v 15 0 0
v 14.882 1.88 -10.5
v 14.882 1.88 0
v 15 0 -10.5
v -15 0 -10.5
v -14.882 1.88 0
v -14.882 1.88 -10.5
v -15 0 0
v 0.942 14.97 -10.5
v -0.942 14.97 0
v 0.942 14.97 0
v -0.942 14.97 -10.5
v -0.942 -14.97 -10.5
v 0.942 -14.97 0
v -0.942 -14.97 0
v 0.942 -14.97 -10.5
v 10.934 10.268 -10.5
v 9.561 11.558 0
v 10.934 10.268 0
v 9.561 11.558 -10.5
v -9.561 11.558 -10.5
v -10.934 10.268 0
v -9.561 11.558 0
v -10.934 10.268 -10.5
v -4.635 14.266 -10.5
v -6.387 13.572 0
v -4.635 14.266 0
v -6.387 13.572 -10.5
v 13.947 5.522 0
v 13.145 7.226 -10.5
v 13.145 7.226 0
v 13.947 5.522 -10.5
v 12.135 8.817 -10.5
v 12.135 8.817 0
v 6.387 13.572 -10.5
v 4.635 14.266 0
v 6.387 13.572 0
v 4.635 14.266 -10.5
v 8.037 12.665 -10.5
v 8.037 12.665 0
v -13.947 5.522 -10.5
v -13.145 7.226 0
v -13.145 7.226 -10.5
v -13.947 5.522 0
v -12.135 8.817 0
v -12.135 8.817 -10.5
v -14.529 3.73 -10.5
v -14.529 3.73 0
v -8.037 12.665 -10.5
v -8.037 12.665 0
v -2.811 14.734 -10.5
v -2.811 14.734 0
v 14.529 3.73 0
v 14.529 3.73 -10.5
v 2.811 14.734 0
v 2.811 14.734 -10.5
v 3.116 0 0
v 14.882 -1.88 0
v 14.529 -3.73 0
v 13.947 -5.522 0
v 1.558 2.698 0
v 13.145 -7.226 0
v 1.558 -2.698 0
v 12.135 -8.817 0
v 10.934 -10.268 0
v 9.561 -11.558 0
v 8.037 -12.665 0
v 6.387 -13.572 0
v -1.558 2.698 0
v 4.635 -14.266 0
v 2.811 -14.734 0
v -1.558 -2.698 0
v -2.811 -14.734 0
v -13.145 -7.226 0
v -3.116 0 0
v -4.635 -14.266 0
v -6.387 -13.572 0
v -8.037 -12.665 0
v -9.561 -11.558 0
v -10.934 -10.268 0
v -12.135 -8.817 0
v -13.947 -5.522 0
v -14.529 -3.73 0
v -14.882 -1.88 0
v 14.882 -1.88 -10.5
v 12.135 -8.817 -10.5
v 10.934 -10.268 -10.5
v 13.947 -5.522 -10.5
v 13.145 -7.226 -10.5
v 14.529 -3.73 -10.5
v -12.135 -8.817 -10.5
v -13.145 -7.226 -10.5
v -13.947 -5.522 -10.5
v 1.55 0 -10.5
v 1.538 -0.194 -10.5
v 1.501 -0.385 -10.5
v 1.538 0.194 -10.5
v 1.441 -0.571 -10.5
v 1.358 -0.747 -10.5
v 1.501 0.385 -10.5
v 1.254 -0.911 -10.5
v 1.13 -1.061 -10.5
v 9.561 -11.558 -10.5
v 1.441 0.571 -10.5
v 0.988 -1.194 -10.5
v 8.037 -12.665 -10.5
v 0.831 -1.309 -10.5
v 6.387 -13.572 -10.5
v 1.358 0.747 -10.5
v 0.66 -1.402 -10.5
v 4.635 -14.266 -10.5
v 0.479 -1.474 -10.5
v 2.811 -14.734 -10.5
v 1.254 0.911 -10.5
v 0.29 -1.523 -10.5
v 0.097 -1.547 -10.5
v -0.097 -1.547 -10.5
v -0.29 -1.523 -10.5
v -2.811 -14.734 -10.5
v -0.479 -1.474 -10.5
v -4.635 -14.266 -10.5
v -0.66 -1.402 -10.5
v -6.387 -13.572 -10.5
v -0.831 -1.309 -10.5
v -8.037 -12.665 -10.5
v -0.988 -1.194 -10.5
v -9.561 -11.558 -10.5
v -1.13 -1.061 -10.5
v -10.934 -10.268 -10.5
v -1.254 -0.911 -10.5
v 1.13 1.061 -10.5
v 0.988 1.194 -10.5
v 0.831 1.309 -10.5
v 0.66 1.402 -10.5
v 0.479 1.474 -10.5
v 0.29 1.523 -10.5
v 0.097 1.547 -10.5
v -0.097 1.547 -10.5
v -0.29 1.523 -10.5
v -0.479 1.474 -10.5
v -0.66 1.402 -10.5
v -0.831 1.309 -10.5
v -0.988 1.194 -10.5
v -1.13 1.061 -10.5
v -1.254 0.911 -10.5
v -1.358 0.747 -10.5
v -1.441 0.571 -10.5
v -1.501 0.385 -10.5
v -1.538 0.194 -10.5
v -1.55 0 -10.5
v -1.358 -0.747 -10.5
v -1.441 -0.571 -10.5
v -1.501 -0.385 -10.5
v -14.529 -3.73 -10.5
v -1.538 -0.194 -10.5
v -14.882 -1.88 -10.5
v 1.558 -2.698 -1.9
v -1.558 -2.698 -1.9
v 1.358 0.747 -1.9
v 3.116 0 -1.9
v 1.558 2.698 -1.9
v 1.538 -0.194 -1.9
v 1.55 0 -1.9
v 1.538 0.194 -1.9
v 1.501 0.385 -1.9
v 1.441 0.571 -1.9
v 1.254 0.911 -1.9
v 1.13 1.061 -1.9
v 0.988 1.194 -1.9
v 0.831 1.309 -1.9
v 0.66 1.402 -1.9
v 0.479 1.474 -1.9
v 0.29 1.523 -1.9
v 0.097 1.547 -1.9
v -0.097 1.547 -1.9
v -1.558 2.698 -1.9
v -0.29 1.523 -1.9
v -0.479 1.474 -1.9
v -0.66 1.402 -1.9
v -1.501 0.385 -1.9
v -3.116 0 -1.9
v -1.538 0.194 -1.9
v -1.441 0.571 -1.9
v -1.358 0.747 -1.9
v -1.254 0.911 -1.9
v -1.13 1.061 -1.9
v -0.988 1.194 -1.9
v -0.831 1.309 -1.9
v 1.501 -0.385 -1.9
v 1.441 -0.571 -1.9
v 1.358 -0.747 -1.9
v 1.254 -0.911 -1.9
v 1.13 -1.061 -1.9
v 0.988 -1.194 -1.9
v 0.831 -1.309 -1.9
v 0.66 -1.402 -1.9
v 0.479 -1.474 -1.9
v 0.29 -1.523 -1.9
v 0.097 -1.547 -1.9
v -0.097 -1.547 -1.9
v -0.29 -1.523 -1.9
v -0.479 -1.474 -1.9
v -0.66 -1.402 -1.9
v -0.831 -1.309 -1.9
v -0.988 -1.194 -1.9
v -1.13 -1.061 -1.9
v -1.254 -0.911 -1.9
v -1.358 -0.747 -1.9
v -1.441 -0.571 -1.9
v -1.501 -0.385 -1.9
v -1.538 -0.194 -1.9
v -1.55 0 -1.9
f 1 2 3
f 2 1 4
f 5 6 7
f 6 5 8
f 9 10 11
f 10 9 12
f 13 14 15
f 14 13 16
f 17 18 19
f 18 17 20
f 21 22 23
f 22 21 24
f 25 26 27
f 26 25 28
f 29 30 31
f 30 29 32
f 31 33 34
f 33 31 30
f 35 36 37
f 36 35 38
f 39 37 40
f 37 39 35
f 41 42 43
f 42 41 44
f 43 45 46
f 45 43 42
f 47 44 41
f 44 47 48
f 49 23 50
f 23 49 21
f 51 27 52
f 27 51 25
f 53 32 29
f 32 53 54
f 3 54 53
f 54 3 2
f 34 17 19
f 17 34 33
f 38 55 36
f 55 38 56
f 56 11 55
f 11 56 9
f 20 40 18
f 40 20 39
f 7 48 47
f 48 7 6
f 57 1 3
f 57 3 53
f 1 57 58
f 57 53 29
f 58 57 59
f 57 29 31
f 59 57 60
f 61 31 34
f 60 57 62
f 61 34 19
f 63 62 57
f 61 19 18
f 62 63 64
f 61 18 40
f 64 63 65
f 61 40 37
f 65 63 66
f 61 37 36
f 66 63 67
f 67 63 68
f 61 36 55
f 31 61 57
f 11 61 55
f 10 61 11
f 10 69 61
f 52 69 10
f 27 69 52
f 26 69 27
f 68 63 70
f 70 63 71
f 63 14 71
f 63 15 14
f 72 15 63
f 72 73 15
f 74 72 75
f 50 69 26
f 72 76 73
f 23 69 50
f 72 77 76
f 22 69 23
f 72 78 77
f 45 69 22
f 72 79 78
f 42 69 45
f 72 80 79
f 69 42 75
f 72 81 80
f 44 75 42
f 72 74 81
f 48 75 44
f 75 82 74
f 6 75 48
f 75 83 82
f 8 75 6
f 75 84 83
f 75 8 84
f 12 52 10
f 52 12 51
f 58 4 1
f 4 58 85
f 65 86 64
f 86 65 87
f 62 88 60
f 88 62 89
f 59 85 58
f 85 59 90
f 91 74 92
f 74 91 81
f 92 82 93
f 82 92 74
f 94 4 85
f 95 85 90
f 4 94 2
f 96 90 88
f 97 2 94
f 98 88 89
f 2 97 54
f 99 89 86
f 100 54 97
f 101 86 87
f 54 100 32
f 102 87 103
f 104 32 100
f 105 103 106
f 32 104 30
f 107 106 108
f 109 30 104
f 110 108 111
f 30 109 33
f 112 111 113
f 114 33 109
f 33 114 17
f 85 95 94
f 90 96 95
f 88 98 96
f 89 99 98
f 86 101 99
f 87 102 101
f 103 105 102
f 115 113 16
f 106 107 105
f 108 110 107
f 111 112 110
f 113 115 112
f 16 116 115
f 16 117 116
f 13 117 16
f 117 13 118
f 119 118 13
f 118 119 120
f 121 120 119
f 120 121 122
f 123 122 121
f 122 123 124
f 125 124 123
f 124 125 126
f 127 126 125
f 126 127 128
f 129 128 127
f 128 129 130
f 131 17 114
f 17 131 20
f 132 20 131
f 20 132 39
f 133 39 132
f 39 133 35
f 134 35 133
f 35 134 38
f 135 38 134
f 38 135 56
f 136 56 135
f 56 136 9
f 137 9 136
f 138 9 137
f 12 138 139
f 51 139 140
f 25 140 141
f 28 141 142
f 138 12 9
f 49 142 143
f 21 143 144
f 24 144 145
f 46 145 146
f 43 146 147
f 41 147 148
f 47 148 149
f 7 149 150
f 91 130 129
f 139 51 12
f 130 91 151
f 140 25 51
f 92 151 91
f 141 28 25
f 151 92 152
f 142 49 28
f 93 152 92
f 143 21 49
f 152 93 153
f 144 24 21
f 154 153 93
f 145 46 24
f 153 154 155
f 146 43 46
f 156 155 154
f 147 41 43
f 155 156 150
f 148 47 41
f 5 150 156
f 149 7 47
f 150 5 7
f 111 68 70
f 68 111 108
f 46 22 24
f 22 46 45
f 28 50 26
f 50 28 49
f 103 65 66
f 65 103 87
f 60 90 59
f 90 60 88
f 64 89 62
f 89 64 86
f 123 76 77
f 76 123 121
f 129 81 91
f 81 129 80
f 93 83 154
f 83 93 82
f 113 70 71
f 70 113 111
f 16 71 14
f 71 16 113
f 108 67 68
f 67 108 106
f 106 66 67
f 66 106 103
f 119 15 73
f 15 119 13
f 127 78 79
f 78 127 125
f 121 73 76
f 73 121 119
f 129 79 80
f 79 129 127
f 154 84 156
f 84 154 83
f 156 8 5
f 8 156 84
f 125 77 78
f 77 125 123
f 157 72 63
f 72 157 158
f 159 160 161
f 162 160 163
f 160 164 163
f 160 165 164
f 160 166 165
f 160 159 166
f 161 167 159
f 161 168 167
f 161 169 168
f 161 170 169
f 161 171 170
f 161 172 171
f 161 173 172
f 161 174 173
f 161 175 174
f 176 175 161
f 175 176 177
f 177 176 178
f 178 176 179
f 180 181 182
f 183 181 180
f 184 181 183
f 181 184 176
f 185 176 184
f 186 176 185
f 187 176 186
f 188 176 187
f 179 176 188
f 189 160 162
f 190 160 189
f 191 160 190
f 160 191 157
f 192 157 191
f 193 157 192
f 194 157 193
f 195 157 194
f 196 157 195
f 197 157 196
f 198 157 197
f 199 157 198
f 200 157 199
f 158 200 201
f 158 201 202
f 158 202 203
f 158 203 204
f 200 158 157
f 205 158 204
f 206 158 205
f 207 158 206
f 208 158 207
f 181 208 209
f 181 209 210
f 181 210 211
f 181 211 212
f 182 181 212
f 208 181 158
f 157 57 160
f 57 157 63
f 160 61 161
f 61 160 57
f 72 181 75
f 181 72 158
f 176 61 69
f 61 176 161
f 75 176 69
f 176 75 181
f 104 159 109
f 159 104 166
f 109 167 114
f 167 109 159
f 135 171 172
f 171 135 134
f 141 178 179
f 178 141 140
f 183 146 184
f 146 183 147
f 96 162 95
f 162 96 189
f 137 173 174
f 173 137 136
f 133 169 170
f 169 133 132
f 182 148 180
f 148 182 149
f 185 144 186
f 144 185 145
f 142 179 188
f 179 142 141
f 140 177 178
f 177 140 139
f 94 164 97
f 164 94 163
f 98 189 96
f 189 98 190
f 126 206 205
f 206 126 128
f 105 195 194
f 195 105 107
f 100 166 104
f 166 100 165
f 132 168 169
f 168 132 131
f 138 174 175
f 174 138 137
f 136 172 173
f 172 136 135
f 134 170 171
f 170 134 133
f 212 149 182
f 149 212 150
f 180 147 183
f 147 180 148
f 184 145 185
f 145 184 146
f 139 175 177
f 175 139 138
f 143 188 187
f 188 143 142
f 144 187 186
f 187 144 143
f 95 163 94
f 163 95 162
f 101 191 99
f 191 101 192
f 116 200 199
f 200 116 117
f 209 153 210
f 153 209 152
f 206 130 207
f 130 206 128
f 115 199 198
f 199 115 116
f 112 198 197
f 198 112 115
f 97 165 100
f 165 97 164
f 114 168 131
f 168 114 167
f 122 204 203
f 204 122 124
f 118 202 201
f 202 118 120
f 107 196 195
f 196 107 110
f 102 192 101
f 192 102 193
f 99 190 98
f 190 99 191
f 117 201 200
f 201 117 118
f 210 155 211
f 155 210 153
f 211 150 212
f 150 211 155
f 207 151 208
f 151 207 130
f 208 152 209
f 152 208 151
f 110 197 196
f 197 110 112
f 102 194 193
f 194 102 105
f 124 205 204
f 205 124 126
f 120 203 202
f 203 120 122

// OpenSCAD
$fn = 50;


difference() {
	union() {
		translate(v = [0, 0, -10.5000000000]) {
			cylinder(h = 10.5000000000, r = 15.0000000000);
		}
		translate(v = [0, 0, -9.0000000000]) {
			cylinder(h = 9, r = 2.8750000000);
		}
	}
	union() {
		translate(v = [0, 0, 0]) {
			rotate(a = [0, 0, 0]) {
				difference() {
					union() {
						translate(v = [0, 0, -1.9000000000]) {
							linear_extrude(height = 1.9000000000) {
								polygon(points = [[3.1158000000, 0.0000000000], [1.5579000000, 2.6983619531], [-1.5579000000, 2.6983619531], [-3.1158000000, 0.0000000000], [-1.5579000000, -2.6983619531], [1.5579000000, -2.6983619531]]);
							}
						}
					}
					union();
				}
			}
		}
		#translate(v = [0, 0, -100.0000000000]) {
			cylinder(h = 200, r = 1.5500000000);
		}
	}
}
